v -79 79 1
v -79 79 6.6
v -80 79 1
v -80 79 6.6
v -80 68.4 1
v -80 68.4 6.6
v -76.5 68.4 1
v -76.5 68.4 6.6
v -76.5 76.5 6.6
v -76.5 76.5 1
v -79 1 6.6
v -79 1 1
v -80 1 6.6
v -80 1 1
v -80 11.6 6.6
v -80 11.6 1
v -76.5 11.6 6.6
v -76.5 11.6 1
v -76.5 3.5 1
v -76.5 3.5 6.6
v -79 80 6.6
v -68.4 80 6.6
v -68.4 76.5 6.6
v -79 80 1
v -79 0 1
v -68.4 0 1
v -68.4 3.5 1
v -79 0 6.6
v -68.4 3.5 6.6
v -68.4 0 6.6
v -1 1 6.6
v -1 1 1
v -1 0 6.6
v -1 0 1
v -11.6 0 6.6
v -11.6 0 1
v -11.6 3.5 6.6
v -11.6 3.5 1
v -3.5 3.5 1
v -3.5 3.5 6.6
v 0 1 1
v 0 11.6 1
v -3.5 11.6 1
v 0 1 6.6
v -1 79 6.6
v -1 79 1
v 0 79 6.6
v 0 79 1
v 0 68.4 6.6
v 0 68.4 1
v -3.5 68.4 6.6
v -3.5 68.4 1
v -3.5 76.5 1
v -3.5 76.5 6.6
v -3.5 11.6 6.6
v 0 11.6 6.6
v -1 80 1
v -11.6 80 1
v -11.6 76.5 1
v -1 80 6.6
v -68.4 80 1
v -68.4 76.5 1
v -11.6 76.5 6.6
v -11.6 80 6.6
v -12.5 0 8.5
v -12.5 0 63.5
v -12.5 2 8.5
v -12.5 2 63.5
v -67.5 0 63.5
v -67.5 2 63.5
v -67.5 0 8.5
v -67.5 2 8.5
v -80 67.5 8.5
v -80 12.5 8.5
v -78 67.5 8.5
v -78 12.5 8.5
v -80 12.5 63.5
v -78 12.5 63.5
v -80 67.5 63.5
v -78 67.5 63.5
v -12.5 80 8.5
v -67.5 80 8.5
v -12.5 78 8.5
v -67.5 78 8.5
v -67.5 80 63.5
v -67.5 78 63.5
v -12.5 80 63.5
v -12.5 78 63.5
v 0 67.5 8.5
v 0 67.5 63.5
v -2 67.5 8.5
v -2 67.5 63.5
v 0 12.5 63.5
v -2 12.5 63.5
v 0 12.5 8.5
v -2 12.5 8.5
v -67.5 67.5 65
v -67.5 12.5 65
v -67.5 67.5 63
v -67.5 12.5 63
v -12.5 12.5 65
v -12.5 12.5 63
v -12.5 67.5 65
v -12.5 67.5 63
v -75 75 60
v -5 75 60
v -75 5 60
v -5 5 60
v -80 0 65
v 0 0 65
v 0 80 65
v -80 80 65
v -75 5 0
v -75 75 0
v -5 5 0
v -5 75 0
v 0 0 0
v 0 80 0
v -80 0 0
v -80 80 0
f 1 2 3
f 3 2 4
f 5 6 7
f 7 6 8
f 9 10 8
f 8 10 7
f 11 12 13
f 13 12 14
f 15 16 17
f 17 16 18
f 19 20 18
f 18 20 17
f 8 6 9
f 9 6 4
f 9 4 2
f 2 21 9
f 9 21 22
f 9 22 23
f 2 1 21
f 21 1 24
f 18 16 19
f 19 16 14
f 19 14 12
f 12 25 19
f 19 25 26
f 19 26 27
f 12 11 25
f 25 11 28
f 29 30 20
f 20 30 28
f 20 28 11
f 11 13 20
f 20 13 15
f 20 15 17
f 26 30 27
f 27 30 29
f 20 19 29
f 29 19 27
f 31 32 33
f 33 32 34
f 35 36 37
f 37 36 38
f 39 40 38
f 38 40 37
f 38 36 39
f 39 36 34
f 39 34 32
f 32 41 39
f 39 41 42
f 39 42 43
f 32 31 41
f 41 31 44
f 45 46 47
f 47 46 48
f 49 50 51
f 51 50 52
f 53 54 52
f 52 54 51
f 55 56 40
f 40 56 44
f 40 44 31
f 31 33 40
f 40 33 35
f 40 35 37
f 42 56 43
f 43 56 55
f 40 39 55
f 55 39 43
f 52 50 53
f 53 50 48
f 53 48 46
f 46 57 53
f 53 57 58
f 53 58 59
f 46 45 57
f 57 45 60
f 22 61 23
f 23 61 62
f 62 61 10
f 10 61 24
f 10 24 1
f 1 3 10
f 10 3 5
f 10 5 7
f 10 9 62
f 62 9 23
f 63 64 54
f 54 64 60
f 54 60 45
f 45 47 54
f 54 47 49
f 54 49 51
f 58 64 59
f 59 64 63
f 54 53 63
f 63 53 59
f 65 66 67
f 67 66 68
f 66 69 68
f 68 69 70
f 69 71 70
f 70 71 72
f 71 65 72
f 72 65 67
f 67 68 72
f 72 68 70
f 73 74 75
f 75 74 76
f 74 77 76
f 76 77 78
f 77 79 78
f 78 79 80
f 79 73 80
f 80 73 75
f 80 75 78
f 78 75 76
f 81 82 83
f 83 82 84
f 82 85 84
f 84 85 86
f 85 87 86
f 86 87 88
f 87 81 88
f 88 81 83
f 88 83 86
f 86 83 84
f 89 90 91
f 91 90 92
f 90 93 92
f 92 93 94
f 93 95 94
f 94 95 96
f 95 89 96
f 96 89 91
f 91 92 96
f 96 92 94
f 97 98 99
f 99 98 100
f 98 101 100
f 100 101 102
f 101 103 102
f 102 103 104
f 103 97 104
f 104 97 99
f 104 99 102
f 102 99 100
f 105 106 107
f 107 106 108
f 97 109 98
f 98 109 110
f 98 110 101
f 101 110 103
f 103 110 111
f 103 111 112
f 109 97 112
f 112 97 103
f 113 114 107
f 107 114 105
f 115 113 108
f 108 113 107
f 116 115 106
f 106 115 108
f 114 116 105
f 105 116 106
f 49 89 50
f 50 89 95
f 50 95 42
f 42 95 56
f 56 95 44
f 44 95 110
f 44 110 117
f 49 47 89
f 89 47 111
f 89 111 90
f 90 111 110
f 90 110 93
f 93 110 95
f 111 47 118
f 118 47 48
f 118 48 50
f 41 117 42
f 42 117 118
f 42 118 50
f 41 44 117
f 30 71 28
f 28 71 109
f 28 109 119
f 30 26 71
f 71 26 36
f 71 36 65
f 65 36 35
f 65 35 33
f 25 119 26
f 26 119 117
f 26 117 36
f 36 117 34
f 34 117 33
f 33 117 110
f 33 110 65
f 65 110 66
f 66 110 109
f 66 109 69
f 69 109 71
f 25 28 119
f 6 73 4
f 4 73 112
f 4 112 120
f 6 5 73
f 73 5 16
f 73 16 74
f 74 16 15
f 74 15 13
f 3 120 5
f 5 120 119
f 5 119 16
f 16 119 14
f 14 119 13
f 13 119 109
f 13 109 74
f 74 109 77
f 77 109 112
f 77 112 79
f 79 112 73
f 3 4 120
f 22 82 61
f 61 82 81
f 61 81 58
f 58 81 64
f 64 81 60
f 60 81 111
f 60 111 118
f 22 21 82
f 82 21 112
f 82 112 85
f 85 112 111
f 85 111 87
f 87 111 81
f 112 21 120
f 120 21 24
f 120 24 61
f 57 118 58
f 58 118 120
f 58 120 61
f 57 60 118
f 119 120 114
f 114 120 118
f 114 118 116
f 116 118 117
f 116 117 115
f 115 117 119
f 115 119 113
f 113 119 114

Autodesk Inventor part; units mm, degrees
ref_plane "YZ Plane" through (0, 0, 0) normal (1, 0, 0) x (0, 1, 0)
ref_plane "XZ Plane" through (0, 0, 0) normal (0, 1, 0) x (-1, 0, 0)
ref_plane "XY Plane" through (0, 0, 0) normal (0, 0, 1) x (1, 0, 0)
sketch "Sketch7" plane through (0, 0, 0) normal (0, 0, 1) x (1, 0, 0)
  line L0 (0, 0) -> (-80, 0)
  line L1 (-80, 0) -> (-80, 80)
  line L2 (-80, 80) -> (0, 80)
  line L3 (0, 80) -> (0, 0)
  line L4 (-75, 75) -> (-5, 75)
  line L5 (-5, 75) -> (-5, 5)
  line L6 (-5, 5) -> (-75, 5)
  line L7 (-75, 5) -> (-75, 75)
  dimension "d54" = 80
  dimension "d55" = 80
  dimension "d56" = 70
  dimension "d57" = 70
extrude "Extrusion10" add sketch "Sketch7" along normal blind 60
sketch "Sketch8" plane through (0, 0, 60) normal (0, 0, 1) x (1, 0, 0)
  line L0 (0, 0) -> (0, 80) projected
  line L1 (0, 0) -> (-80, 0)
  line L2 (-80, 0) -> (-80, 80)
  line L3 (-80, 80) -> (0, 80)
  line L4 (0, 80) -> (0, 0)
  dimension "d60" = 80
  dimension "d61" = 80
extrude "Extrusion11" add sketch "Sketch8" along normal blind 5
sketch "Sketch9" plane through (0, 0, 65) normal (0, 0, 1) x (1, 0, 0)
  line L0 (-12.5, 12.5) -> (-67.5, 12.5)
  line L1 (-67.5, 12.5) -> (-67.5, 67.5)
  line L2 (-67.5, 67.5) -> (-12.5, 67.5)
  line L3 (-12.5, 67.5) -> (-12.5, 12.5)
  point P0 (0, 0)
  dimension "d64" = 55
  dimension "d65" = 55
extrude "Extrusion12" cut sketch "Sketch9" against normal blind 2
sketch "Sketch10" plane through (0, 0, 0) normal (1, 0, 0) x (0, 0, -1)
  line L0 (-63.5, 12.5) -> (-8.5, 12.5)
  line L1 (-8.5, 12.5) -> (-8.5, 67.5)
  line L2 (-8.5, 67.5) -> (-63.5, 67.5)
  line L3 (-63.5, 67.5) -> (-63.5, 12.5)
  point P0 (0, 0)
  dimension "d68" = 55
  dimension "d69" = 55
extrude "Extrusion13" cut sketch "Sketch10" against normal blind 2
sketch "Sketch11" plane through (-80, 80, 0) normal (0, 1, 0) x (1, 0, 0)
  line L0 (12.5, -63.5) -> (67.5, -63.5)
  line L1 (67.5, -63.5) -> (67.5, -8.5)
  line L2 (67.5, -8.5) -> (12.5, -8.5)
  line L3 (12.5, -8.5) -> (12.5, -63.5)
  point P0 (80, 0)
  dimension "d72" = 55
  dimension "d73" = 55
sketch "Sketch12" plane through (-80, 0, 0) normal (-1, 0, 0) x (0, 0, 1)
  line L0 (63.5, 12.5) -> (8.5, 12.5)
  line L1 (8.5, 12.5) -> (8.5, 67.5)
  line L2 (8.5, 67.5) -> (63.5, 67.5)
  line L3 (63.5, 67.5) -> (63.5, 12.5)
  point P0 (0, 0)
  dimension "d74" = 55
  dimension "d75" = 55
sketch "Sketch13" plane through (-80, 0, 0) normal (0, -1, 0) x (1, 0, 0)
  line L0 (12.5, 63.5) -> (67.5, 63.5)
  line L1 (67.5, 63.5) -> (67.5, 8.5)
  line L2 (67.5, 8.5) -> (12.5, 8.5)
  line L3 (12.5, 8.5) -> (12.5, 63.5)
  point P0 (80, 0)
  dimension "d76" = 55
  dimension "d77" = 55
extrude "Extrusion14" cut sketch "Sketch11" against normal blind 2
extrude "Extrusion15" cut sketch "Sketch12" against normal blind 2
extrude "Extrusion16" cut sketch "Sketch13" against normal blind 2
sketch "Sketch14" plane through (-80, 80, 0) normal (0, 1, 0) x (1, 0, 0)
  line L0 (79, -1) -> (68.4, -1)
  line L1 (68.4, -1) -> (68.4, -6.6)
  line L2 (68.4, -6.6) -> (79, -6.6)
  line L3 (79, -6.6) -> (79, -1)
  line L4 (1, -1) -> (11.6, -1)
  line L5 (11.6, -1) -> (11.6, -6.6)
  line L6 (11.6, -6.6) -> (1, -6.6)
  line L7 (1, -6.6) -> (1, -1)
  point P0 (80, 0)
  dimension "d84" = 10.6
  dimension "d85" = 5.6
  dimension "d86" = 10.6
  dimension "d87" = 5.6
extrude "Extrusion17" cut sketch "Sketch14" against normal blind 3.5
sketch "Sketch15" plane through (-80, 0, 0) normal (-1, 0, 0) x (0, 0, 1)
  line L0 (1, 1) -> (6.6, 1)
  line L1 (6.6, 1) -> (6.6, 11.6)
  line L2 (6.6, 11.6) -> (1, 11.6)
  line L3 (1, 11.6) -> (1, 1)
  line L4 (1, 79) -> (6.6, 79)
  line L5 (6.6, 79) -> (6.6, 68.4)
  line L6 (6.6, 68.4) -> (1, 68.4)
  line L7 (1, 68.4) -> (1, 79)
  point P0 (0, 0)
  dimension "d90" = 5.6
  dimension "d91" = 10.6
  dimension "d92" = 5.6
  dimension "d93" = 10.6
sketch "Sketch16" plane through (-80, 0, 0) normal (0, -1, 0) x (1, 0, 0)
  line L0 (1, 1) -> (11.6, 1)
  line L1 (11.6, 1) -> (11.6, 6.6)
  line L2 (11.6, 6.6) -> (1, 6.6)
  line L3 (1, 6.6) -> (1, 1)
  line L4 (79, 1) -> (68.4, 1)
  line L5 (68.4, 1) -> (68.4, 6.6)
  line L6 (68.4, 6.6) -> (79, 6.6)
  line L7 (79, 6.6) -> (79, 1)
  point P0 (80, 0)
  dimension "d94" = 10.6
  dimension "d95" = 5.6
  dimension "d96" = 10.6
  dimension "d97" = 5.6
sketch "Sketch17" plane through (0, 0, 0) normal (1, 0, 0) x (0, 0, -1)
  line L0 (-1, 1) -> (-6.6, 1)
  line L1 (-6.6, 1) -> (-6.6, 11.6)
  line L2 (-6.6, 11.6) -> (-1, 11.6)
  line L3 (-1, 11.6) -> (-1, 1)
  line L4 (-1, 79) -> (-6.6, 79)
  line L5 (-6.6, 79) -> (-6.6, 68.4)
  line L6 (-6.6, 68.4) -> (-1, 68.4)
  line L7 (-1, 68.4) -> (-1, 79)
  point P0 (0, 0)
  dimension "d98" = 5.6
  dimension "d99" = 10.6
  dimension "d100" = 5.6
  dimension "d101" = 10.6
extrude "Extrusion18" cut sketch "Sketch17" against normal blind 3.5
extrude "Extrusion19" cut sketch "Sketch16" against normal blind 3.5
extrude "Extrusion20" cut sketch "Sketch15" against normal blind 3.5
properties part number "Circle_TestFit_V1"
